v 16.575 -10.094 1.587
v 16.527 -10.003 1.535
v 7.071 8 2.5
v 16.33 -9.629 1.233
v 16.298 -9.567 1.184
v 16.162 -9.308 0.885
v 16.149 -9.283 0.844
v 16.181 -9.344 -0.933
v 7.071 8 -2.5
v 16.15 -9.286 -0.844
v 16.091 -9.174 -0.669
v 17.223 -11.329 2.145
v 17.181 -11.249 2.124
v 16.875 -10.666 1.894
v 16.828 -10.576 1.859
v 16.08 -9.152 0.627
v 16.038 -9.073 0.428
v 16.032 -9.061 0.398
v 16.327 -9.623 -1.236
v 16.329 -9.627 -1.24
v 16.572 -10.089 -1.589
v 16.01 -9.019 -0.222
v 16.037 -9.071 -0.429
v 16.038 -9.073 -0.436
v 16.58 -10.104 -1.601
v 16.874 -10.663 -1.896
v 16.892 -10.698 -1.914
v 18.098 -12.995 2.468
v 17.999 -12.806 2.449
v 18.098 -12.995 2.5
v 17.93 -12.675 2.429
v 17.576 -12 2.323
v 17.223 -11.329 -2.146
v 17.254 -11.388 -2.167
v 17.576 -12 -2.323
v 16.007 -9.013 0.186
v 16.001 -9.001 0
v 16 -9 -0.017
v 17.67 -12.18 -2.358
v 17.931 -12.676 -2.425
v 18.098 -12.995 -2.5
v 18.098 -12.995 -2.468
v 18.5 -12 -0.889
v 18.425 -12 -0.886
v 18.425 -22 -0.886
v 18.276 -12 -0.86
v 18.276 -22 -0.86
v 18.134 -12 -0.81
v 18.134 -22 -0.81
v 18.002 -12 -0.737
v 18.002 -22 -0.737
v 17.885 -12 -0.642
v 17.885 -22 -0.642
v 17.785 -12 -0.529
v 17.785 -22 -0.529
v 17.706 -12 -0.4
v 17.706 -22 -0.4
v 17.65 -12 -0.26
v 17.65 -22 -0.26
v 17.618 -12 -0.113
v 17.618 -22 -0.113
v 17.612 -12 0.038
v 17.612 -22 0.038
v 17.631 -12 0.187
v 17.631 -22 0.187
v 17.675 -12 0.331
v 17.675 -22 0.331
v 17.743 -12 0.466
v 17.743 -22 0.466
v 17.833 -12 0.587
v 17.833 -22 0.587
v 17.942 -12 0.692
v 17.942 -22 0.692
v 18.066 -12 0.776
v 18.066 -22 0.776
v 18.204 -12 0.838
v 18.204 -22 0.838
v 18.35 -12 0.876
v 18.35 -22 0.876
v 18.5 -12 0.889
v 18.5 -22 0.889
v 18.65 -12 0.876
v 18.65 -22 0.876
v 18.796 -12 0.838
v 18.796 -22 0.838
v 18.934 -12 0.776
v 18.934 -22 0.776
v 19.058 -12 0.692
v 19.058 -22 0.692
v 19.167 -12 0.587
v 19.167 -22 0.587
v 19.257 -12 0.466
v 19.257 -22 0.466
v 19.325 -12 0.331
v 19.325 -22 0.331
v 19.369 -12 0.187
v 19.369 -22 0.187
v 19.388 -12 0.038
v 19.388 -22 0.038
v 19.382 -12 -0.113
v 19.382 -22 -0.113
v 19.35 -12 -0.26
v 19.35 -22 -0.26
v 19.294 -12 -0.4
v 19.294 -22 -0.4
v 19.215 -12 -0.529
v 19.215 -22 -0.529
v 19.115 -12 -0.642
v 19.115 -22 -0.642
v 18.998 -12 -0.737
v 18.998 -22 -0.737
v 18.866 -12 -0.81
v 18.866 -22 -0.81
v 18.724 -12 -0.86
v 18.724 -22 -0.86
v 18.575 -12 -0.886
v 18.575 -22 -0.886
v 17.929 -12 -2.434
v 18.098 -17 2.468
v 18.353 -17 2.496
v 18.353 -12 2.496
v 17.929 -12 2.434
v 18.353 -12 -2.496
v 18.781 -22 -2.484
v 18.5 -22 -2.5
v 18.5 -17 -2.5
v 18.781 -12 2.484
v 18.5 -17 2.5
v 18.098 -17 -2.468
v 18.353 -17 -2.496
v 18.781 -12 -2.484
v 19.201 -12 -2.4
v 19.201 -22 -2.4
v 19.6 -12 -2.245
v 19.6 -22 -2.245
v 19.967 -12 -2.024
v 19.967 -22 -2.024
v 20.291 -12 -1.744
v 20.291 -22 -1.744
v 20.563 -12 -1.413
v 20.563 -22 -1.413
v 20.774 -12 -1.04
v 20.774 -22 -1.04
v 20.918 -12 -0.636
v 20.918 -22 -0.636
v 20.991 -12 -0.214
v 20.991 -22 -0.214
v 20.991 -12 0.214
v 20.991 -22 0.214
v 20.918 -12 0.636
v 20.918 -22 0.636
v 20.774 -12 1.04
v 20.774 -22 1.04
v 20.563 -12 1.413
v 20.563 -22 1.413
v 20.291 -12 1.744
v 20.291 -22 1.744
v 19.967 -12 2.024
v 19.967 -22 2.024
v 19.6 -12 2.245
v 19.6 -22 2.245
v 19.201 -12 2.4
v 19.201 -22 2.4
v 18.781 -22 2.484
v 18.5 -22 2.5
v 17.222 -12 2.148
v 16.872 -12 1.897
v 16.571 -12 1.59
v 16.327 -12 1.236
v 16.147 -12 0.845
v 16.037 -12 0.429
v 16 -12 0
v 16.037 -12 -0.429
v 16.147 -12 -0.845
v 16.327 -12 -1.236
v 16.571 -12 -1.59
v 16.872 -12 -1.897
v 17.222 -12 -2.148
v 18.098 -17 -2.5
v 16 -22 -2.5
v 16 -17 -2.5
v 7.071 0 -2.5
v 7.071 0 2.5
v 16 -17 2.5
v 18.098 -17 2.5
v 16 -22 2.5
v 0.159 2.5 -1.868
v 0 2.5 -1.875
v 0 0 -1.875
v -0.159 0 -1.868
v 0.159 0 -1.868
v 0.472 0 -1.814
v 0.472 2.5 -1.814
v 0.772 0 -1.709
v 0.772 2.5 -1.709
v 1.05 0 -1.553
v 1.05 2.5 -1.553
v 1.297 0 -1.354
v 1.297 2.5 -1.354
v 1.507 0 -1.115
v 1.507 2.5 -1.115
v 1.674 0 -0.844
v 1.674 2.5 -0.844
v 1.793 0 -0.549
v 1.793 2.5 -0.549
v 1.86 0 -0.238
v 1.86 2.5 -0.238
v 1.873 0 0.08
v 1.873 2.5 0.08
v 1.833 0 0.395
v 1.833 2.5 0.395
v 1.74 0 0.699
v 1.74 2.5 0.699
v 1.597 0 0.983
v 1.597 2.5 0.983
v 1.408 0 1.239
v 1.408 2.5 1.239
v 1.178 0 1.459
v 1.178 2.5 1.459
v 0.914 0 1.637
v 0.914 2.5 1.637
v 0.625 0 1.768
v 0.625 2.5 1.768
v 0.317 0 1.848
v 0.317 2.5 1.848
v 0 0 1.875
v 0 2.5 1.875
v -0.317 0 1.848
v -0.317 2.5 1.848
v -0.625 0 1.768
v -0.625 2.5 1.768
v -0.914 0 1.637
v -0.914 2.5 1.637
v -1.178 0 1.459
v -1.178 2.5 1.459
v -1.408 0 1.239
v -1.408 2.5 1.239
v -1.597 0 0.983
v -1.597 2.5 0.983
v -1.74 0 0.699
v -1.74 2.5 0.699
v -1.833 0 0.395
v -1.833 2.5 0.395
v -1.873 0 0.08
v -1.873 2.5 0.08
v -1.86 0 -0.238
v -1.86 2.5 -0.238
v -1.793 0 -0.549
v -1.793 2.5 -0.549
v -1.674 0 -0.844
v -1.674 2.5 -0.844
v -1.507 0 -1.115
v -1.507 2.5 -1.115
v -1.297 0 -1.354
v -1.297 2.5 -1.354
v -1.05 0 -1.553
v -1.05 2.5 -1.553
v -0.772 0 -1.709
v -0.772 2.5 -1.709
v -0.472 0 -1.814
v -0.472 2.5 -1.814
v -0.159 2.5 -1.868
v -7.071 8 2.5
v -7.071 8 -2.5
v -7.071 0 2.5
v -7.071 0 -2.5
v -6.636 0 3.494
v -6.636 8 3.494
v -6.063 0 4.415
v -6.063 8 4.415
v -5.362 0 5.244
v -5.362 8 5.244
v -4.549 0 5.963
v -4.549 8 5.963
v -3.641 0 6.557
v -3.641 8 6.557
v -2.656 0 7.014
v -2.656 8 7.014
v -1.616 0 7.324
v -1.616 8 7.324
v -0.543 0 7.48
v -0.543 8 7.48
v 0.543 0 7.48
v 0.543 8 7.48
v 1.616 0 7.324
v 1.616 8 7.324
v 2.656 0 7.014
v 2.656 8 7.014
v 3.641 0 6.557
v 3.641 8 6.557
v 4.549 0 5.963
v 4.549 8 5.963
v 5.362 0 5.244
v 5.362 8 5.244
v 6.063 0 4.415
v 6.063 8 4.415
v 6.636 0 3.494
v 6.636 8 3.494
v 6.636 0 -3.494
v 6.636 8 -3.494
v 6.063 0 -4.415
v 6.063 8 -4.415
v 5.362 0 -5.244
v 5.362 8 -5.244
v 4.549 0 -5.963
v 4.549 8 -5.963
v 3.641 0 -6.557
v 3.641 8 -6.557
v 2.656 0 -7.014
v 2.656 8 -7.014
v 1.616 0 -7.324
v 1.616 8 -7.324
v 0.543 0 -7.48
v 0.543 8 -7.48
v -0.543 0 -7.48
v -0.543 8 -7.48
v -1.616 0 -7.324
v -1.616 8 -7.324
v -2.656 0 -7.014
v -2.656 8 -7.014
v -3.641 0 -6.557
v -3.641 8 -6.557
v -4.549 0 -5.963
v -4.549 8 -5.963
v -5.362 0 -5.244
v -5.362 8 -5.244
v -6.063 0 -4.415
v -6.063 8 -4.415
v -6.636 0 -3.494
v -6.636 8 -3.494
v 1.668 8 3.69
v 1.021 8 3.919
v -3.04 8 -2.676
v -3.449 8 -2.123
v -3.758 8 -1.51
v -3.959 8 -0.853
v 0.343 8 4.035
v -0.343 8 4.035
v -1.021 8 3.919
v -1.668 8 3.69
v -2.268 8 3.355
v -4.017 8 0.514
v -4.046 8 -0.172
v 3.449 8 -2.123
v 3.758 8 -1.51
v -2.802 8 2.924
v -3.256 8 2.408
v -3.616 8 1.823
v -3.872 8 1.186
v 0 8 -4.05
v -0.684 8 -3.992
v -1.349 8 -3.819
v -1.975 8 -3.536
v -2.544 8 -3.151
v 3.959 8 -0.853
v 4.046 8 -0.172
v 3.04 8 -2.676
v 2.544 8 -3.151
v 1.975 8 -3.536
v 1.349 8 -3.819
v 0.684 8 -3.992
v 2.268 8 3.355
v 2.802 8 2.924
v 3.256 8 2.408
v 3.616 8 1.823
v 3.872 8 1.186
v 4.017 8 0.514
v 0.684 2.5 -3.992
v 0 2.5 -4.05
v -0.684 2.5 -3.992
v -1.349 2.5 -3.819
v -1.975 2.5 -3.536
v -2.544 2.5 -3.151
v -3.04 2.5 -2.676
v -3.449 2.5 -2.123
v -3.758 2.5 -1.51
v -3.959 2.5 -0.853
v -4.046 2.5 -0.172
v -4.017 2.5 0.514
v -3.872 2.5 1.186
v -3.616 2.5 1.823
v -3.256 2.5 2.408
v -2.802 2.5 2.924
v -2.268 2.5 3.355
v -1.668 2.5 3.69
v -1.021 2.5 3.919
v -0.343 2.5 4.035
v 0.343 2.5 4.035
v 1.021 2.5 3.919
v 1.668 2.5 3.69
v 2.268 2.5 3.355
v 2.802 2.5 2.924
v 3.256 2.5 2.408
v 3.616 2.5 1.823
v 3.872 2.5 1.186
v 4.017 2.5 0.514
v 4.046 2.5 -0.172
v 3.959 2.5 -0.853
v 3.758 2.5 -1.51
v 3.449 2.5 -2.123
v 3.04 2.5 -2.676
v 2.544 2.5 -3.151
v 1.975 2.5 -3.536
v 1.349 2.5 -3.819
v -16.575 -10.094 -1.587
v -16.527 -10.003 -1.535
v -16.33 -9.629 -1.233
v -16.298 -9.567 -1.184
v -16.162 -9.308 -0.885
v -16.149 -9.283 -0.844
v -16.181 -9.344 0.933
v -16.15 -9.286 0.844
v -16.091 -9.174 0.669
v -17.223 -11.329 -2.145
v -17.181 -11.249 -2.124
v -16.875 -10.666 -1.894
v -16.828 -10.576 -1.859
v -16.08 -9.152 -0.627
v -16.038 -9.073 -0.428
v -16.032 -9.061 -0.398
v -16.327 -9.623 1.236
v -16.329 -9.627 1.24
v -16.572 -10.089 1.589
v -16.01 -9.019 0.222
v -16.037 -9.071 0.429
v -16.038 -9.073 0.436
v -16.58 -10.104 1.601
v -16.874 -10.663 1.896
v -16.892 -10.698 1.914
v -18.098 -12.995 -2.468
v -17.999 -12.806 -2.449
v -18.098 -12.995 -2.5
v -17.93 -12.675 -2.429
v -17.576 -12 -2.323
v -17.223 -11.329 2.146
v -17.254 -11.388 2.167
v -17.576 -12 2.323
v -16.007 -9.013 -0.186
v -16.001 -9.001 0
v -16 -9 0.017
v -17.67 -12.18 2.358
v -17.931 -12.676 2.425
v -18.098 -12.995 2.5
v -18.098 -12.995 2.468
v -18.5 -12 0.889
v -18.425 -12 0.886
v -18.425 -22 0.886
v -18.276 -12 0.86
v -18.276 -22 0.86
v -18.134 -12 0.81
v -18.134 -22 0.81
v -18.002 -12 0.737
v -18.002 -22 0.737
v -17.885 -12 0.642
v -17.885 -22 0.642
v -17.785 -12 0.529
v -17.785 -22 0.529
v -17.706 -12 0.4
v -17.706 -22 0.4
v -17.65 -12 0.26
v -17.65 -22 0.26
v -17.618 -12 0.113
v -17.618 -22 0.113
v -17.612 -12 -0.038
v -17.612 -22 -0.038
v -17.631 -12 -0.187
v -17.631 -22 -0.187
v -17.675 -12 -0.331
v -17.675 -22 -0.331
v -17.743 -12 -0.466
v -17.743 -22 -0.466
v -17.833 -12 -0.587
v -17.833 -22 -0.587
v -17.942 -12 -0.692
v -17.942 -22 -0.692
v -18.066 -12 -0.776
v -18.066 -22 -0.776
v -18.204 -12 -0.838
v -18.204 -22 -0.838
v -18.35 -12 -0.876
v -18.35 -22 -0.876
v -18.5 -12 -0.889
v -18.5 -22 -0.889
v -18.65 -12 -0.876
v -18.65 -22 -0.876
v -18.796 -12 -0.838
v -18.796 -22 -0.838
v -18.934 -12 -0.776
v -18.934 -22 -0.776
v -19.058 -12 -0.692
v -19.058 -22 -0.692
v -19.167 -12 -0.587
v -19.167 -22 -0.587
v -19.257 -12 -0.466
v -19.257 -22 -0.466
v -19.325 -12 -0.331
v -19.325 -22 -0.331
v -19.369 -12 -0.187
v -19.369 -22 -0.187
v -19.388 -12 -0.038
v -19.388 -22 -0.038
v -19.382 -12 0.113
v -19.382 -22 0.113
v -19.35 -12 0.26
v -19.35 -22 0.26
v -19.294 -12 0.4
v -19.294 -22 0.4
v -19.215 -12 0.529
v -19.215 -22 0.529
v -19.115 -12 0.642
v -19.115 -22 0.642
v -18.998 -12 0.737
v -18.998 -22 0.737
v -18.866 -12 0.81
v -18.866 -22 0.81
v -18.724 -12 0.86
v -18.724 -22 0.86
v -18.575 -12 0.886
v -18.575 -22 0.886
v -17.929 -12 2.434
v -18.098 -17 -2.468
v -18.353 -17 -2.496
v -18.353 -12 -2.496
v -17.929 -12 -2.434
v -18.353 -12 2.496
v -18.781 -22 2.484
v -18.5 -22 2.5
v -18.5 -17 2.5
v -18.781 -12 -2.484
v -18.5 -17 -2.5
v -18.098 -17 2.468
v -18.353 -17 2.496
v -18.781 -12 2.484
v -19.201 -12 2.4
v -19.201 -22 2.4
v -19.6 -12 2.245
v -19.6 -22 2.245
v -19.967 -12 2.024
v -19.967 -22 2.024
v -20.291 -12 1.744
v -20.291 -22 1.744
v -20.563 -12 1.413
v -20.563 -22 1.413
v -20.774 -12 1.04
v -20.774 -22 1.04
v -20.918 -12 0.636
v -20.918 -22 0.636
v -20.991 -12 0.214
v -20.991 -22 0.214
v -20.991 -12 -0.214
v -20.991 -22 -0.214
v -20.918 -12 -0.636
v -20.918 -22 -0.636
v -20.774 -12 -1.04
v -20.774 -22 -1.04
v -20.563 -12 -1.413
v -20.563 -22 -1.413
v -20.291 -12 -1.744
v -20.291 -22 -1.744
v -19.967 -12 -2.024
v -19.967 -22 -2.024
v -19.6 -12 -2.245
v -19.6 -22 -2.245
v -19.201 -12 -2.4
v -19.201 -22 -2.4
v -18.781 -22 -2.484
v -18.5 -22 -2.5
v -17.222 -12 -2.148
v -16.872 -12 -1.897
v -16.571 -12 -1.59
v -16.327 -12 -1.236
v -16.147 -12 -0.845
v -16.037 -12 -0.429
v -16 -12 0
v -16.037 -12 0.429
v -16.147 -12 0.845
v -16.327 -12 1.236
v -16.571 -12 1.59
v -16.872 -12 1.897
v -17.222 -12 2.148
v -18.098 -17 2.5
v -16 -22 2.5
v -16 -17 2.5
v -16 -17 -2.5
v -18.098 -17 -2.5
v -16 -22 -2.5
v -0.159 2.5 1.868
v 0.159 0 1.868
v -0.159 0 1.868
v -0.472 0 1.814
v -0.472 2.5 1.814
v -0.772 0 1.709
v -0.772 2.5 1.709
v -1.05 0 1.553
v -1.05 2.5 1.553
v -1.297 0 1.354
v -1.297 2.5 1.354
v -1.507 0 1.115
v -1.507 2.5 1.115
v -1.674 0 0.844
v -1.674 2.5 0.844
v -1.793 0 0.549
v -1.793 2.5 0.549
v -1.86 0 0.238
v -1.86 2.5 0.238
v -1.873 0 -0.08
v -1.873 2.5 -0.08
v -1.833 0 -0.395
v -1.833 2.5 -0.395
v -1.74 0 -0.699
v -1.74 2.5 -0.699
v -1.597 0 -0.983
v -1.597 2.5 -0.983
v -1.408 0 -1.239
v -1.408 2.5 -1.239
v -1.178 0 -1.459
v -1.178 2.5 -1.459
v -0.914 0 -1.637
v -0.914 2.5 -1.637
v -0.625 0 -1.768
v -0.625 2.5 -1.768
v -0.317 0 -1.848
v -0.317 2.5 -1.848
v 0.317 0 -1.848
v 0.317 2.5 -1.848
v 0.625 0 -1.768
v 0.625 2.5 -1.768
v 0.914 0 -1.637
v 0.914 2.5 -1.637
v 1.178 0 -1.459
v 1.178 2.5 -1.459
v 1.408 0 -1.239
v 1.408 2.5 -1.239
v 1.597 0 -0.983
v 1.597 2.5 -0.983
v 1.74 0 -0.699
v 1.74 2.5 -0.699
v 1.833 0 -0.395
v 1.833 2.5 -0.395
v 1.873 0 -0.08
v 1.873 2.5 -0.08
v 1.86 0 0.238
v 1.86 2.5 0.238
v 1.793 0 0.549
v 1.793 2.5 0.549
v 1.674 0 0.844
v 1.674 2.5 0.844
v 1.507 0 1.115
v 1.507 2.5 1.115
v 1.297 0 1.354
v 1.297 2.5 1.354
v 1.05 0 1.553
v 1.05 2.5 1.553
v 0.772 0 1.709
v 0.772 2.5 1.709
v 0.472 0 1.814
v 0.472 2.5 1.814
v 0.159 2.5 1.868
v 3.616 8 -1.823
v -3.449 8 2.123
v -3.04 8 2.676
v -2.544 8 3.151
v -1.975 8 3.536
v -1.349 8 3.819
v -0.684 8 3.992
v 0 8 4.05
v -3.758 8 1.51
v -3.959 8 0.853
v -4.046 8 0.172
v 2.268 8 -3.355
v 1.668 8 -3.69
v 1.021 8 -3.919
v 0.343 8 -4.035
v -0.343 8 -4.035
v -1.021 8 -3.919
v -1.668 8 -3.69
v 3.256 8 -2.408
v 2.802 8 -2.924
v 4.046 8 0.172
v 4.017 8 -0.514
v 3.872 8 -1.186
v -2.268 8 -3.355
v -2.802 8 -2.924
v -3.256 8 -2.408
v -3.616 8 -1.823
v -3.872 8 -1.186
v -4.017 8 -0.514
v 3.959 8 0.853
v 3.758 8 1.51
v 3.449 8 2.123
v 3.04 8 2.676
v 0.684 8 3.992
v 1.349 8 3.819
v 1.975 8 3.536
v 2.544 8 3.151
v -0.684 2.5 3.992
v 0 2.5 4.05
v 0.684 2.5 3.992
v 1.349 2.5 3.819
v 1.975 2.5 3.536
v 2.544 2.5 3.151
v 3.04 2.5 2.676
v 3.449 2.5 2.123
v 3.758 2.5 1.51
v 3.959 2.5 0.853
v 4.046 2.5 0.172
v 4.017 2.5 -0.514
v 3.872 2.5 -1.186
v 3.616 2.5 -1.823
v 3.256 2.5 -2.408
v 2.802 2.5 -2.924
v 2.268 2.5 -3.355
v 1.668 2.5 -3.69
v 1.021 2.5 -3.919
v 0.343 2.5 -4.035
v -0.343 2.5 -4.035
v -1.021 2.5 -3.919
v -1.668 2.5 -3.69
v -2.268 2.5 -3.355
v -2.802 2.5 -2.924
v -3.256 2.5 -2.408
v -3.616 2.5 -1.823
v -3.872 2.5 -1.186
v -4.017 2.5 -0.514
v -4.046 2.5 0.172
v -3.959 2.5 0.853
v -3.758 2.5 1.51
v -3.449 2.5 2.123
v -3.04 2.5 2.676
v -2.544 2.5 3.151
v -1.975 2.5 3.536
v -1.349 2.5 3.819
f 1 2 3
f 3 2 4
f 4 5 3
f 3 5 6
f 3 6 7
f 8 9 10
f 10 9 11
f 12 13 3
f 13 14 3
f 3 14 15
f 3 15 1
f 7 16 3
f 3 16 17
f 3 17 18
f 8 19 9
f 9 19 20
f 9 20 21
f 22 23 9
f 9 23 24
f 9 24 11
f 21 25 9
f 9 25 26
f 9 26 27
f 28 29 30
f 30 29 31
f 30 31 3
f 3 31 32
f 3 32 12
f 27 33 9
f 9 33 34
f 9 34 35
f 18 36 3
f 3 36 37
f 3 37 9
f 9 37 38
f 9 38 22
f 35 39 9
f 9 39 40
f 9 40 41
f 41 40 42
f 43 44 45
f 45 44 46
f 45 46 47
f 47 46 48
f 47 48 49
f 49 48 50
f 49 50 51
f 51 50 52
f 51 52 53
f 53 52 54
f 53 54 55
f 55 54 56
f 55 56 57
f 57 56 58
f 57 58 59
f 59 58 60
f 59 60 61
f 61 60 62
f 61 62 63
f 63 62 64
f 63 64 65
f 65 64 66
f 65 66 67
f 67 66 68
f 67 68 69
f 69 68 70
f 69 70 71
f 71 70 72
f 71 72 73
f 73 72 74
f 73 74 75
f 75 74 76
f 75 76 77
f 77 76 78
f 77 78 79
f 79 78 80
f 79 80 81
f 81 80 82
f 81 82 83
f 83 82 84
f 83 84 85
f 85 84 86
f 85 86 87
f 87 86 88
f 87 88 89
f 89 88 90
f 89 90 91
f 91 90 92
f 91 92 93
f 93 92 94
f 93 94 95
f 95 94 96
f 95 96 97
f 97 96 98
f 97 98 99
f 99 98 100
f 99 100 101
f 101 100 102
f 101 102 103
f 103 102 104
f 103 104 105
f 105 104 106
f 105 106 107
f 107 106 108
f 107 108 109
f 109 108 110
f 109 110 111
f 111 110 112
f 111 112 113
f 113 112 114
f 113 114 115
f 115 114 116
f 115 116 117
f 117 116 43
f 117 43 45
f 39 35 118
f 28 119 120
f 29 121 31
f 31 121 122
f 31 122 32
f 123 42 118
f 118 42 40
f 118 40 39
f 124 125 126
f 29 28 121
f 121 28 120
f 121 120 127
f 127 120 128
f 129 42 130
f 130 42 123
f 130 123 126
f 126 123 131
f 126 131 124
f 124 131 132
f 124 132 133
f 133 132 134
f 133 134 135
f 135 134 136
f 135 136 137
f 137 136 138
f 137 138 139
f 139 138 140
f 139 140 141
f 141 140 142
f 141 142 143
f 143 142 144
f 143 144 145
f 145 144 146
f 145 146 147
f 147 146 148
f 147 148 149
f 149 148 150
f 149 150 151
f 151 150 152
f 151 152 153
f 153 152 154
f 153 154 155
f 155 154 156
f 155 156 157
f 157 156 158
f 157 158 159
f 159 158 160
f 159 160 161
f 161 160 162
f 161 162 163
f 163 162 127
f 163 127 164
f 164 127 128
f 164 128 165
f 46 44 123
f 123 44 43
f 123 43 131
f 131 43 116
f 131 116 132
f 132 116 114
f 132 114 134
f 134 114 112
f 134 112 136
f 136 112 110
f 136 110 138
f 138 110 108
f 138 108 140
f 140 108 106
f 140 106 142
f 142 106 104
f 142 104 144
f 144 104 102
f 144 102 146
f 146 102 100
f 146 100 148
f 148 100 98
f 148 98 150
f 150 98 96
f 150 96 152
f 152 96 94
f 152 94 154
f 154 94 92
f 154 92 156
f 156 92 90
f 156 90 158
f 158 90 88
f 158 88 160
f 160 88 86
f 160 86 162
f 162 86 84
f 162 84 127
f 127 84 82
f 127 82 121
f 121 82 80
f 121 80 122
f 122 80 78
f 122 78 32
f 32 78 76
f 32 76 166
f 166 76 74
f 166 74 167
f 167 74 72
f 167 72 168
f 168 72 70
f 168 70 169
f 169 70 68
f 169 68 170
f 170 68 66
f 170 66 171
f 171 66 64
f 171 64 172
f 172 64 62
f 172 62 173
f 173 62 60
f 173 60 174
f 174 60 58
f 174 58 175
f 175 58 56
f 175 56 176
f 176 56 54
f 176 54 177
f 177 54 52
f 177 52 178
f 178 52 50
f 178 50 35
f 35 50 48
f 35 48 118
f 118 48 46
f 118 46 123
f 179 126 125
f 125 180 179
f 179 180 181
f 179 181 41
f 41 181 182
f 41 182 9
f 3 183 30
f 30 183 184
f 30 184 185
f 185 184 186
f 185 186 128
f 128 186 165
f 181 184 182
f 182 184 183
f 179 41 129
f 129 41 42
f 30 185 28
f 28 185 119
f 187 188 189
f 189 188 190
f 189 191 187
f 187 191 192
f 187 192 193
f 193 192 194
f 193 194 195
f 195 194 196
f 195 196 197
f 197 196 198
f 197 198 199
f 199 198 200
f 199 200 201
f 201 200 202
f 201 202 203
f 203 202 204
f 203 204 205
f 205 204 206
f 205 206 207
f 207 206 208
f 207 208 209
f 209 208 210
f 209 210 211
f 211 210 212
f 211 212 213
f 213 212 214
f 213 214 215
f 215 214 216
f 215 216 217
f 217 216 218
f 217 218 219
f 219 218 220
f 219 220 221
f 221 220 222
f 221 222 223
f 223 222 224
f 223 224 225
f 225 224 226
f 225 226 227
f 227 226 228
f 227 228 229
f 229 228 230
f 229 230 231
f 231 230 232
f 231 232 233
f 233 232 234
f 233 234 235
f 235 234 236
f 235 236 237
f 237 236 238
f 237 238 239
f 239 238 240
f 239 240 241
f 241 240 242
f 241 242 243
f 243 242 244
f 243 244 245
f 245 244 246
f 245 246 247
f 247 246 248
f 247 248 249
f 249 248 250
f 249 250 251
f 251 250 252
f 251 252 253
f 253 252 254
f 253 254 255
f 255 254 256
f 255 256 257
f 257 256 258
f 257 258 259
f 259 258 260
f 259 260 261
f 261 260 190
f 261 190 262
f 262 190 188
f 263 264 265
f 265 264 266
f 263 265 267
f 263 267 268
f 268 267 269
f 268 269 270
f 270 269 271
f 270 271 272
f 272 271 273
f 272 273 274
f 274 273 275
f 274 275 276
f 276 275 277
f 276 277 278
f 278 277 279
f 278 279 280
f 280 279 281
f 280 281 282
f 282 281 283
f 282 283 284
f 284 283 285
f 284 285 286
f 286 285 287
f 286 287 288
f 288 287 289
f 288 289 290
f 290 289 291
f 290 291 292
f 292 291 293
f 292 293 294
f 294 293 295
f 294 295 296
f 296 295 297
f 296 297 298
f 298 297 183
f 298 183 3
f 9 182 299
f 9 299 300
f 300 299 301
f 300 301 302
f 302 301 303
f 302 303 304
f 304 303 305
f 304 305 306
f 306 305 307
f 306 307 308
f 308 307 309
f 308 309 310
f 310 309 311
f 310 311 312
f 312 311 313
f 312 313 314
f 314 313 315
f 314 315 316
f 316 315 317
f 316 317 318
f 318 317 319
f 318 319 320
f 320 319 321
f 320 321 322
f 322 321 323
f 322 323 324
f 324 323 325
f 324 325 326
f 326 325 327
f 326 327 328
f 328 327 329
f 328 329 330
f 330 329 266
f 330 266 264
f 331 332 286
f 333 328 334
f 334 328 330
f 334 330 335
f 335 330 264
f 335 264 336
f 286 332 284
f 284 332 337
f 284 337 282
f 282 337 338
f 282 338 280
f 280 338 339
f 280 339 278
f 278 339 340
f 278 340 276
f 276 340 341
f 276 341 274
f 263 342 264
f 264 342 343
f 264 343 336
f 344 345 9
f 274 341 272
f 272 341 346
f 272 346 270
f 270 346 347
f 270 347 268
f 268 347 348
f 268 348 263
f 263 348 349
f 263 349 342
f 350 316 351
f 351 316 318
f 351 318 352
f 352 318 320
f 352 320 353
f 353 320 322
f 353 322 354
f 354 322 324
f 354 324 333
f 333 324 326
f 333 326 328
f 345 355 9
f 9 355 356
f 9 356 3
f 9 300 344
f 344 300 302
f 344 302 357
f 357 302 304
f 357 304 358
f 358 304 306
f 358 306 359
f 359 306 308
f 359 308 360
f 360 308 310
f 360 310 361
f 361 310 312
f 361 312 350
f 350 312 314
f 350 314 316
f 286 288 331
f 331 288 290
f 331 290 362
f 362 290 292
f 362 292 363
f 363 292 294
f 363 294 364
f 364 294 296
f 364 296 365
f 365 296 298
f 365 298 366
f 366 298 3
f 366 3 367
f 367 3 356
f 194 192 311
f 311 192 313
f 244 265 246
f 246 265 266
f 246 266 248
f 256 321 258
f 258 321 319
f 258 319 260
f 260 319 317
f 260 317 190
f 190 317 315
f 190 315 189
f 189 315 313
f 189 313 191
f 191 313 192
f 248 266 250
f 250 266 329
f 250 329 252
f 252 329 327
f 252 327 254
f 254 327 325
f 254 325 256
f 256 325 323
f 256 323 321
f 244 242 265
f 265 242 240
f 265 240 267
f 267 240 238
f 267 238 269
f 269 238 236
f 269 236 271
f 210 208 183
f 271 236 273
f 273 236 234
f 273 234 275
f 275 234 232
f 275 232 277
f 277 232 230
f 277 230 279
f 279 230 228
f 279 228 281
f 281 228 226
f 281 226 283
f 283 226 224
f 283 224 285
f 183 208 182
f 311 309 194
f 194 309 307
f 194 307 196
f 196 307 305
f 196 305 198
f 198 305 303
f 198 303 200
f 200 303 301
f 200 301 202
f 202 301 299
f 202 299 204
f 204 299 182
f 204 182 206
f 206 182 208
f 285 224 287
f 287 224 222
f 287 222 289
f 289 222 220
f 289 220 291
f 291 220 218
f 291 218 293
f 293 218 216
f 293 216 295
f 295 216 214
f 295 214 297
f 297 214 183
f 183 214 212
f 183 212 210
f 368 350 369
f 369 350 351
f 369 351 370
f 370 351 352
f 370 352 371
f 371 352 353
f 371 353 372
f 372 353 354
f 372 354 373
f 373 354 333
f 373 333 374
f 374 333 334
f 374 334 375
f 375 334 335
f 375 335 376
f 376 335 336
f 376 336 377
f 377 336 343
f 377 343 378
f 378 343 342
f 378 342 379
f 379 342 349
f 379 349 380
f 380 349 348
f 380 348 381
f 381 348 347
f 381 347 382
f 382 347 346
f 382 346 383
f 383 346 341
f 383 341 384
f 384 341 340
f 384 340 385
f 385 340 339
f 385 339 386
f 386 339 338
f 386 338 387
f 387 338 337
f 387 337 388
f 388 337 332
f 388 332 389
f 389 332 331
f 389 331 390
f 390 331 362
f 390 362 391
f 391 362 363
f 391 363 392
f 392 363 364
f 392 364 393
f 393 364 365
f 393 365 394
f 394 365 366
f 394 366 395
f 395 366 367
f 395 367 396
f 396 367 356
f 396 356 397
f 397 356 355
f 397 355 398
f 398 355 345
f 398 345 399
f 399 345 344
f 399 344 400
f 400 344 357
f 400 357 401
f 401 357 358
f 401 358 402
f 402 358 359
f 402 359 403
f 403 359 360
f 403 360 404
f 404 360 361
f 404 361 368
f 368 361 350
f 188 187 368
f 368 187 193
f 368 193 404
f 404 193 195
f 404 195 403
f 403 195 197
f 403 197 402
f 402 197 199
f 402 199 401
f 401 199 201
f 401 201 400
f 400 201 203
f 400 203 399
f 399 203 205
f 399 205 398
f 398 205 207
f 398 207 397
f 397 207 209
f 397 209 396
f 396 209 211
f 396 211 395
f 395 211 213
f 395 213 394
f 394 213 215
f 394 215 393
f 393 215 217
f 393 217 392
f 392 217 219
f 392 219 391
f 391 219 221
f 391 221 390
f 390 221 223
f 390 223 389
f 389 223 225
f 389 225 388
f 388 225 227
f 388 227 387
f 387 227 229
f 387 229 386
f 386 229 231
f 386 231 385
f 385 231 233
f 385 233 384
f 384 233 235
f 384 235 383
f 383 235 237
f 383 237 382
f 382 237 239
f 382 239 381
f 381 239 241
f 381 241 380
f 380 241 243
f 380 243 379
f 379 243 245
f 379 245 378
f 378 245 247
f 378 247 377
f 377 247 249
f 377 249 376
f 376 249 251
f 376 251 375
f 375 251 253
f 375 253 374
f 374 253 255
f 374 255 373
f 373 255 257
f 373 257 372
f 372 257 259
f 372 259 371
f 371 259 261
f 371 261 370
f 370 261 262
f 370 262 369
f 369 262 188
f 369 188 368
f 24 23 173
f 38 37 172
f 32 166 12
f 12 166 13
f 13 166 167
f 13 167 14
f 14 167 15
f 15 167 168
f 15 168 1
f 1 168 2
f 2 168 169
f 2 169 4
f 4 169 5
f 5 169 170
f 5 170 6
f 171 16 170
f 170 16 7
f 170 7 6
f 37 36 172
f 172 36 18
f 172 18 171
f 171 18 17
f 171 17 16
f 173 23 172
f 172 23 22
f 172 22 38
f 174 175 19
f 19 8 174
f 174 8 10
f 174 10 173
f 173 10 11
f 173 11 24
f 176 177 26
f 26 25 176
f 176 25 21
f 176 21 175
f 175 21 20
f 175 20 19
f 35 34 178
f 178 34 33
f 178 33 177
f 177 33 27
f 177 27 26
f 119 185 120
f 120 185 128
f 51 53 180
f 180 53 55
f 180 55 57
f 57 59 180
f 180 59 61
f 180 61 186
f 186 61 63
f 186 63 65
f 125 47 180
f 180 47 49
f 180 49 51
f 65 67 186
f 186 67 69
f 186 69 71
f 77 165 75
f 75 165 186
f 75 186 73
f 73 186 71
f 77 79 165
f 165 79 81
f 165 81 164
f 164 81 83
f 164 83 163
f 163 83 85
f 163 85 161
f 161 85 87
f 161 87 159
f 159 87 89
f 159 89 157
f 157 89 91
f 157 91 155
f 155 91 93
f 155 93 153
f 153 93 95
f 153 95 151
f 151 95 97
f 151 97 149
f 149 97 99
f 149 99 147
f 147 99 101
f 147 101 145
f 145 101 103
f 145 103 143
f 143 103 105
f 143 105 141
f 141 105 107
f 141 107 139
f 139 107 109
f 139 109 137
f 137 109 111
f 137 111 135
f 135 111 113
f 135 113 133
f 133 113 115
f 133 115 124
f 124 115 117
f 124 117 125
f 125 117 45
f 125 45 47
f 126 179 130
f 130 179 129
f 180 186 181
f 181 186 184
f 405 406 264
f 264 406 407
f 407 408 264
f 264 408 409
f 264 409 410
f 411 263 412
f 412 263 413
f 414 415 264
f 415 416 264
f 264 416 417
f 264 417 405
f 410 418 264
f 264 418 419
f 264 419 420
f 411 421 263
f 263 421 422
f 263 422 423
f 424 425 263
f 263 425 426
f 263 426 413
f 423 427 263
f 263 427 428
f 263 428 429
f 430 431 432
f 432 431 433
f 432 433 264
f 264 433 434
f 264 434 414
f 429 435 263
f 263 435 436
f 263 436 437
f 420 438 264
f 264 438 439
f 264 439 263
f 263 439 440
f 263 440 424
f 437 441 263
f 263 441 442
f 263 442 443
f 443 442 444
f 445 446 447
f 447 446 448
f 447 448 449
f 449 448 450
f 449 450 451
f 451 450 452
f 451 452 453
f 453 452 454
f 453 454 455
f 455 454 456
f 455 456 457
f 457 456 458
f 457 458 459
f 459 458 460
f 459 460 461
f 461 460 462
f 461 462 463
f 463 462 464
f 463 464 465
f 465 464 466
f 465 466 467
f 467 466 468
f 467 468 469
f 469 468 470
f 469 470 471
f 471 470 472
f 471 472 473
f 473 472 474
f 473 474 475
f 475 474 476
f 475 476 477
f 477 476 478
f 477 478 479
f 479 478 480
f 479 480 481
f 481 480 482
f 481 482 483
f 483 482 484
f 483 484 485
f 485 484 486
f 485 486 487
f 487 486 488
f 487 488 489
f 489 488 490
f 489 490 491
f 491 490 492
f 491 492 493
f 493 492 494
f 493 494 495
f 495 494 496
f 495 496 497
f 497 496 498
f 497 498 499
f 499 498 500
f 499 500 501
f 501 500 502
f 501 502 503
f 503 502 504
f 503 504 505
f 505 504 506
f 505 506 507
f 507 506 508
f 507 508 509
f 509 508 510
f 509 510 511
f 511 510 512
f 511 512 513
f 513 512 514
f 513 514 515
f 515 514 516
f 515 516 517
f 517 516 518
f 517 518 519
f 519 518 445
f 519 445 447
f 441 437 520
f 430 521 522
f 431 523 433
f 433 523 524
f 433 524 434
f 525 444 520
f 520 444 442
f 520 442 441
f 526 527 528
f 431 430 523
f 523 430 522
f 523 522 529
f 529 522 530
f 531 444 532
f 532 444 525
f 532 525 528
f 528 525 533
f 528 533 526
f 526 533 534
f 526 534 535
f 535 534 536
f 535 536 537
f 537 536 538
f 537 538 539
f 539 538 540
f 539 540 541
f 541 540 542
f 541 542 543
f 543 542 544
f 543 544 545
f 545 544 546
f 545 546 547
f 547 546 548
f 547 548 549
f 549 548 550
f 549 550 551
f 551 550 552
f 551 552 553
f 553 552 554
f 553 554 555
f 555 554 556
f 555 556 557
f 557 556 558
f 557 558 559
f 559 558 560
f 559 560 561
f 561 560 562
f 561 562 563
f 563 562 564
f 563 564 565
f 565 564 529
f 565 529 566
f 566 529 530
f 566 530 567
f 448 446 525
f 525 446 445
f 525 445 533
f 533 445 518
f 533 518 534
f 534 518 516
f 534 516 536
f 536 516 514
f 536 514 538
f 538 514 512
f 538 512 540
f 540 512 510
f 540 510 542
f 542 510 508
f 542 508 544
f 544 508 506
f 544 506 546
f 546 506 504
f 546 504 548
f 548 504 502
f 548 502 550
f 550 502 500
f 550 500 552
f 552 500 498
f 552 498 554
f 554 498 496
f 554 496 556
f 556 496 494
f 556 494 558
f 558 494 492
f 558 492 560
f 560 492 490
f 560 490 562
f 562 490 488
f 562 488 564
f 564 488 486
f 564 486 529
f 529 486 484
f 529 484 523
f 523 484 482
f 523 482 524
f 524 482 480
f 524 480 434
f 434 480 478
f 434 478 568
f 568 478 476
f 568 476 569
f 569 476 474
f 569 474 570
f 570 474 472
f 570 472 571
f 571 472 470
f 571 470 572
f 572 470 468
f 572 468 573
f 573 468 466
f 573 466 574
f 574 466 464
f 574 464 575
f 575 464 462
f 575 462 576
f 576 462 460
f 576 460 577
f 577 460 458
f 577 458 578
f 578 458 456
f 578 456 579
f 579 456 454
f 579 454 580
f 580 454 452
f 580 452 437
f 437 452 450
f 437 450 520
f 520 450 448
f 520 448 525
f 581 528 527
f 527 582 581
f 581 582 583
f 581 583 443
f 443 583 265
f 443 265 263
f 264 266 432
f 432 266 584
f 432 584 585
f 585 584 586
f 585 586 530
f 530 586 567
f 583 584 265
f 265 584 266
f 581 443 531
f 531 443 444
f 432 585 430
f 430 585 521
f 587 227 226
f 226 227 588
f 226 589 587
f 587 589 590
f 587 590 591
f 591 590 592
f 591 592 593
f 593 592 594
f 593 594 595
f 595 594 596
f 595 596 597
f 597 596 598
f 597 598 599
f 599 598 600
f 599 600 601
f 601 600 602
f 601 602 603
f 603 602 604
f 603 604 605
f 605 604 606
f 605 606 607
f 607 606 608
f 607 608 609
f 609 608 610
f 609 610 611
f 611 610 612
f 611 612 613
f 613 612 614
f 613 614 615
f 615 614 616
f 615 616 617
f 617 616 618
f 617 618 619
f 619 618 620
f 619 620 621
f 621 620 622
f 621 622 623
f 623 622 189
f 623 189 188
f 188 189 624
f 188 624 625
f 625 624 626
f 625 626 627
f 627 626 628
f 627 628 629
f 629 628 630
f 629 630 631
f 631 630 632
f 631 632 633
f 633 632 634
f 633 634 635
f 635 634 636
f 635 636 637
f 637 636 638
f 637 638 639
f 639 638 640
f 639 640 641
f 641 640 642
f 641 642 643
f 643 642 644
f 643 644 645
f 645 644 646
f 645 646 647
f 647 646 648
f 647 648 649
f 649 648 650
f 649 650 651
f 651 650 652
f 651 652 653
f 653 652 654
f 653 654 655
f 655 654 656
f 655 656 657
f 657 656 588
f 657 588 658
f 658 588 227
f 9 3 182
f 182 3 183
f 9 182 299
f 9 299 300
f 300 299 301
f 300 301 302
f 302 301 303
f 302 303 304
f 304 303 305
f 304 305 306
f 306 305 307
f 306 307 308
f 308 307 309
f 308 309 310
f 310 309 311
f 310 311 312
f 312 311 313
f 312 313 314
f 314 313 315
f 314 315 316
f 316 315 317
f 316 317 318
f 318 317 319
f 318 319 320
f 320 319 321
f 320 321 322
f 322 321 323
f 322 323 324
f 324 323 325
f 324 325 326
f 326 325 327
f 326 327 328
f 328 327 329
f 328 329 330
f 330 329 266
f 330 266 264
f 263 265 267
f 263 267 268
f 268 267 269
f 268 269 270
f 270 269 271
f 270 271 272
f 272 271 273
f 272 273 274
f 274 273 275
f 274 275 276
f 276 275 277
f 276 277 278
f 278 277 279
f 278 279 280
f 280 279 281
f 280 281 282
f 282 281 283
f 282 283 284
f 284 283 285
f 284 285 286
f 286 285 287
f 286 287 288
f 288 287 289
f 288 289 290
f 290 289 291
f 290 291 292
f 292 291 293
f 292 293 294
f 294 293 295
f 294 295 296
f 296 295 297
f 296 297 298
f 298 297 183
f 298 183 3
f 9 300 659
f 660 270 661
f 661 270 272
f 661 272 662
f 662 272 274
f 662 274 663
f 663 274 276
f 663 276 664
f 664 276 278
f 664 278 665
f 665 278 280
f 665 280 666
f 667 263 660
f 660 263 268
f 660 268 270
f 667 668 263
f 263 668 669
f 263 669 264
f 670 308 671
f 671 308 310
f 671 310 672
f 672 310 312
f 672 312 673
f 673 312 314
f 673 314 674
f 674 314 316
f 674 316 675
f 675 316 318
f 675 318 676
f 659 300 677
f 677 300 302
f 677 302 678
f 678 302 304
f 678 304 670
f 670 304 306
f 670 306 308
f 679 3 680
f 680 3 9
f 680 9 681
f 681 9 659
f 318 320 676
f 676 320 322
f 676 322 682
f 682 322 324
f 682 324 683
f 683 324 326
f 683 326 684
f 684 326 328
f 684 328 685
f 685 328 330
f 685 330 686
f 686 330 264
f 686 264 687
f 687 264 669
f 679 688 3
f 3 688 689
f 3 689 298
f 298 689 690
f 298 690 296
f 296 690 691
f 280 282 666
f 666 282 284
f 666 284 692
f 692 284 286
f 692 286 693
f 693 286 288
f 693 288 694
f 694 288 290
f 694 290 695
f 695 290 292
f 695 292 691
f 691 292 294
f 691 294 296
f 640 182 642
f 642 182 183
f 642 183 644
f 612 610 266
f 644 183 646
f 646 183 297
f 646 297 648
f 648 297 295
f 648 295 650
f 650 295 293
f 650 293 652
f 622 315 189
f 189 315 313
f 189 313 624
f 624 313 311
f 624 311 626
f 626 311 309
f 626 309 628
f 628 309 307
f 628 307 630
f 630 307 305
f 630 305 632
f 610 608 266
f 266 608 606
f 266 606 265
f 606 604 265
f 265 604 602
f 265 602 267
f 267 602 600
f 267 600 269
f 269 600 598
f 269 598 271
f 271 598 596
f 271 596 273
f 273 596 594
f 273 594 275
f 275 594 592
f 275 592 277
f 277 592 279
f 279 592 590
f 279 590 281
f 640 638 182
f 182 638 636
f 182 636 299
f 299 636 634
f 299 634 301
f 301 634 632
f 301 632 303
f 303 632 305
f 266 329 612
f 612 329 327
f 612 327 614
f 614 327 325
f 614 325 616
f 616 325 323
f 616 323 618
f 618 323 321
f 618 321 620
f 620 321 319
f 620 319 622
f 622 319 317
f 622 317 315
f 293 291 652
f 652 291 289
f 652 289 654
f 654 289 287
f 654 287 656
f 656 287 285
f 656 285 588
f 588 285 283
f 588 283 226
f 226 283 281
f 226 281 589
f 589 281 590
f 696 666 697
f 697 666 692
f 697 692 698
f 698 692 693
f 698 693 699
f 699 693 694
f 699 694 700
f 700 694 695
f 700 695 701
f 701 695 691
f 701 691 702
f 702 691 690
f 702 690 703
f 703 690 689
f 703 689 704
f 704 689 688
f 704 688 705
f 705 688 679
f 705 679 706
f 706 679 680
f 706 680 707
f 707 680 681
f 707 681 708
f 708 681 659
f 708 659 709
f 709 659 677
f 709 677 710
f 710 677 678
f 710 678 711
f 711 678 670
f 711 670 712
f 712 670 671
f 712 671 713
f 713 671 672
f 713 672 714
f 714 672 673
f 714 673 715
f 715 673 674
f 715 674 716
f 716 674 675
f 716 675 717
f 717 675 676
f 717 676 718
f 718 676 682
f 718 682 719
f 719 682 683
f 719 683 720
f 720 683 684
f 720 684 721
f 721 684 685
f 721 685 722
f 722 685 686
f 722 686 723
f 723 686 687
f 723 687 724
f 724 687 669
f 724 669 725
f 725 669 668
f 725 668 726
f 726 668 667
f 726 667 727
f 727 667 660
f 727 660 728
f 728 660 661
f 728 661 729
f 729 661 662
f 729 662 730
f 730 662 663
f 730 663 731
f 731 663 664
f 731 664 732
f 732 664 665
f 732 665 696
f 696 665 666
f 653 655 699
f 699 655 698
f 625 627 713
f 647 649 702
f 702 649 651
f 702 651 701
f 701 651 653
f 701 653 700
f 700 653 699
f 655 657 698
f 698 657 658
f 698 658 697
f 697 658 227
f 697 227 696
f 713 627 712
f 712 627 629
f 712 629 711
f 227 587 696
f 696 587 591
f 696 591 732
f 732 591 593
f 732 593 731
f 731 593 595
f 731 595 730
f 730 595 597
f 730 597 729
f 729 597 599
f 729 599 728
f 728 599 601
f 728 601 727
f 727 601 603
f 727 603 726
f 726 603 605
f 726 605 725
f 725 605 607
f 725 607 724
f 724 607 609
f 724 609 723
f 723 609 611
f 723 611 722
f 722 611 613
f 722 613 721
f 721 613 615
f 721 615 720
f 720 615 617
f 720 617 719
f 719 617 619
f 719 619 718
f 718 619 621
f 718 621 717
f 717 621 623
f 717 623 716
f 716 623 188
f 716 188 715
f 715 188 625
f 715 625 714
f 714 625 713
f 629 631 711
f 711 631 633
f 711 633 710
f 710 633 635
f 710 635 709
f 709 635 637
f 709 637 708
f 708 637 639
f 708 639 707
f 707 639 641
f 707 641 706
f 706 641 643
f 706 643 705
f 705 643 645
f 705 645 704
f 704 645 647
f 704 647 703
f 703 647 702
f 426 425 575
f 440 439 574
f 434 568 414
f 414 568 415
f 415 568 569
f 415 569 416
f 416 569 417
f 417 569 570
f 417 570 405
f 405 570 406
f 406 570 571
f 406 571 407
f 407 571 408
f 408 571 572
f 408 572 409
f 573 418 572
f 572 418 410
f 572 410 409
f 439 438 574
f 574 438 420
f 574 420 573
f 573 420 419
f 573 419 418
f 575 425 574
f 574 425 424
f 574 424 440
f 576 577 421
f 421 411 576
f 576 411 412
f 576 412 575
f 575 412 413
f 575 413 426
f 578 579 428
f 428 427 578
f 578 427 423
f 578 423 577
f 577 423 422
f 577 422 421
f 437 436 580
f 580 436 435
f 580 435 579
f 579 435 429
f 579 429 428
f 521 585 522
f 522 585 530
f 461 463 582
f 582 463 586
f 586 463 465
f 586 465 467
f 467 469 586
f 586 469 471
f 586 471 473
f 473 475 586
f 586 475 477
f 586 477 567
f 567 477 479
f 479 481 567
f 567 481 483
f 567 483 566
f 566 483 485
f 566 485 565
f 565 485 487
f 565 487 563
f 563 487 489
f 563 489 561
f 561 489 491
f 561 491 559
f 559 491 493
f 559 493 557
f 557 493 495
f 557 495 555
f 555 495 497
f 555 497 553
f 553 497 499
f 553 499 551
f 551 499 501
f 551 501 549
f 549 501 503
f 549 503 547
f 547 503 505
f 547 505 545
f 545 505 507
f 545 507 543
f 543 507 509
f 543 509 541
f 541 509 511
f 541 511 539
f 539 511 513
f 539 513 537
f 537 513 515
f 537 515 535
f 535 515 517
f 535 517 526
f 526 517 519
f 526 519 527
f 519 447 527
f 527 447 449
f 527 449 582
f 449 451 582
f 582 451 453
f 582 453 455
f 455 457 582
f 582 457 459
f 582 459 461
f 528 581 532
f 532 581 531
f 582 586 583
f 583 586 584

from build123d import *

# Parameters (mm, degrees)
SKETCH1_R                = 1.875
BOSS_EXTRUDE1_DEPTH      = 8
BOSS_EXTRUDE2_START      = -17
SKETCH1_3_R              = 2.5
SKETCH1_3_R_2            = 0.889
BOSS_EXTRUDE2_DEPTH      = 5
SKETCH4_R                = 4.05
CUT_EXTRUDE1_DEPTH       = 5.5
BOSS_EXTRUDE3_DEPTH      = 2.5
BOSS_EXTRUDE3_DEPTH_BACK = 2.5
SKETCH5_R                = 2.5
CUT_EXTRUDE2_DEPTH       = 30.954131602
BOSS_EXTRUDE4_START      = 5
SKETCH8_R                = 0.889
BOSS_EXTRUDE4_DEPTH      = 5
SKETCH1_4_R              = 0.889
CUT_EXTRUDE3_DEPTH       = 32.324910215
CIRPATTERN5_COUNT        = 2


with BuildPart() as part:
    # Sketch1 → Boss-Extrude1 (new body)
    with BuildSketch(Plane(origin=(0, 0, 0), x_dir=(1, 0, 0), z_dir=(0, 1, 0))):
        with BuildLine():
            Line((7.071067812, -2.5), (7.071067812, 2.5))
            ThreePointArc((7.071067812, 2.5), (0, 7.5), (-7.071067812, 2.5))
            Line((-7.071067812, 2.5), (-7.071067812, -2.5))
            ThreePointArc((-7.071067812, -2.5), (0, -7.5), (7.071067812, -2.5))
        make_face()
        Circle(SKETCH1_R, mode=Mode.SUBTRACT)
    extrude(amount=BOSS_EXTRUDE1_DEPTH)

    # Sketch4 → Cut-Extrude1 (cut)
    with BuildSketch(Plane(origin=(0, 8, 0), x_dir=(1, 0, 0), z_dir=(0, 1, 0))):
        Circle(SKETCH4_R)
    extrude(amount=-CUT_EXTRUDE1_DEPTH, mode=Mode.SUBTRACT)



with BuildPart() as body_2:
    # Sketch1<3> → Boss-Extrude2 (new body)
    with BuildSketch(Plane(origin=(0, 0, 0), x_dir=(1, 0, 0), z_dir=(0, 1, 0)).offset(BOSS_EXTRUDE2_START)):
        with Locations((-18.5, 0)):
            Circle(SKETCH1_3_R)
        with Locations((-18.5, 0)):
            Circle(SKETCH1_3_R_2, mode=Mode.SUBTRACT)
    extrude(amount=BOSS_EXTRUDE2_DEPTH)


with BuildPart() as part_1:
    add(part.part)

    add(body_2.part)  # Boss-Extrude3 merges body 2
    # Sketch3 → Boss-Extrude3 (add, two sides: drawn at the far end of the back side and taken through both)
    with BuildSketch(Plane.XY.offset(-BOSS_EXTRUDE3_DEPTH_BACK)):
        Polygon((-7.071067812, 8), (-18.098268146, -12.994941134), (-18.098268146, -17), (-16, -17), (-7.071067812, 0), align=None)
    extrude(amount=BOSS_EXTRUDE3_DEPTH + BOSS_EXTRUDE3_DEPTH_BACK)

    # Sketch5 → Cut-Extrude2 (cut, through all)
    with BuildSketch(Plane(origin=(0, -12, 0), x_dir=(1, 0, 0), z_dir=(0, 1, 0))):
        with Locations((-18.5, 0)):
            Circle(SKETCH5_R)
    extrude(amount=CUT_EXTRUDE2_DEPTH, mode=Mode.SUBTRACT)

    # Sketch8 → Boss-Extrude4 (add)
    with BuildSketch(Plane.XZ.offset(17).offset(BOSS_EXTRUDE4_START)):
        with BuildLine():
            Line((-18.5, -2.5), (-16, -2.5))
            Line((-16, -2.5), (-16, 2.5))
            Line((-16, 2.5), (-18.5, 2.5))
            ThreePointArc((-18.5, 2.5), (-21, 0), (-18.5, -2.5))
        make_face()
        with Locations((-18.5, 0)):
            Circle(SKETCH8_R, mode=Mode.SUBTRACT)
    extrude(amount=-BOSS_EXTRUDE4_DEPTH)

    # Sketch1<4> → Cut-Extrude3 (cut, through all)
    with BuildSketch(Plane(origin=(0, 0, 0), x_dir=(1, 0, 0), z_dir=(0, 1, 0))):
        with Locations((-18.5, 0)):
            Circle(SKETCH1_4_R)
    extrude(amount=-CUT_EXTRUDE3_DEPTH, mode=Mode.SUBTRACT)


with BuildPart() as cirpattern5_1:
    # CirPattern5: pattern copy
    add(part_1.part.rotate(Axis((0, 8, 0), (0, 1, 0)), 1 * 360 / CIRPATTERN5_COUNT))


solid = Compound([part_1.part, cirpattern5_1.part])
